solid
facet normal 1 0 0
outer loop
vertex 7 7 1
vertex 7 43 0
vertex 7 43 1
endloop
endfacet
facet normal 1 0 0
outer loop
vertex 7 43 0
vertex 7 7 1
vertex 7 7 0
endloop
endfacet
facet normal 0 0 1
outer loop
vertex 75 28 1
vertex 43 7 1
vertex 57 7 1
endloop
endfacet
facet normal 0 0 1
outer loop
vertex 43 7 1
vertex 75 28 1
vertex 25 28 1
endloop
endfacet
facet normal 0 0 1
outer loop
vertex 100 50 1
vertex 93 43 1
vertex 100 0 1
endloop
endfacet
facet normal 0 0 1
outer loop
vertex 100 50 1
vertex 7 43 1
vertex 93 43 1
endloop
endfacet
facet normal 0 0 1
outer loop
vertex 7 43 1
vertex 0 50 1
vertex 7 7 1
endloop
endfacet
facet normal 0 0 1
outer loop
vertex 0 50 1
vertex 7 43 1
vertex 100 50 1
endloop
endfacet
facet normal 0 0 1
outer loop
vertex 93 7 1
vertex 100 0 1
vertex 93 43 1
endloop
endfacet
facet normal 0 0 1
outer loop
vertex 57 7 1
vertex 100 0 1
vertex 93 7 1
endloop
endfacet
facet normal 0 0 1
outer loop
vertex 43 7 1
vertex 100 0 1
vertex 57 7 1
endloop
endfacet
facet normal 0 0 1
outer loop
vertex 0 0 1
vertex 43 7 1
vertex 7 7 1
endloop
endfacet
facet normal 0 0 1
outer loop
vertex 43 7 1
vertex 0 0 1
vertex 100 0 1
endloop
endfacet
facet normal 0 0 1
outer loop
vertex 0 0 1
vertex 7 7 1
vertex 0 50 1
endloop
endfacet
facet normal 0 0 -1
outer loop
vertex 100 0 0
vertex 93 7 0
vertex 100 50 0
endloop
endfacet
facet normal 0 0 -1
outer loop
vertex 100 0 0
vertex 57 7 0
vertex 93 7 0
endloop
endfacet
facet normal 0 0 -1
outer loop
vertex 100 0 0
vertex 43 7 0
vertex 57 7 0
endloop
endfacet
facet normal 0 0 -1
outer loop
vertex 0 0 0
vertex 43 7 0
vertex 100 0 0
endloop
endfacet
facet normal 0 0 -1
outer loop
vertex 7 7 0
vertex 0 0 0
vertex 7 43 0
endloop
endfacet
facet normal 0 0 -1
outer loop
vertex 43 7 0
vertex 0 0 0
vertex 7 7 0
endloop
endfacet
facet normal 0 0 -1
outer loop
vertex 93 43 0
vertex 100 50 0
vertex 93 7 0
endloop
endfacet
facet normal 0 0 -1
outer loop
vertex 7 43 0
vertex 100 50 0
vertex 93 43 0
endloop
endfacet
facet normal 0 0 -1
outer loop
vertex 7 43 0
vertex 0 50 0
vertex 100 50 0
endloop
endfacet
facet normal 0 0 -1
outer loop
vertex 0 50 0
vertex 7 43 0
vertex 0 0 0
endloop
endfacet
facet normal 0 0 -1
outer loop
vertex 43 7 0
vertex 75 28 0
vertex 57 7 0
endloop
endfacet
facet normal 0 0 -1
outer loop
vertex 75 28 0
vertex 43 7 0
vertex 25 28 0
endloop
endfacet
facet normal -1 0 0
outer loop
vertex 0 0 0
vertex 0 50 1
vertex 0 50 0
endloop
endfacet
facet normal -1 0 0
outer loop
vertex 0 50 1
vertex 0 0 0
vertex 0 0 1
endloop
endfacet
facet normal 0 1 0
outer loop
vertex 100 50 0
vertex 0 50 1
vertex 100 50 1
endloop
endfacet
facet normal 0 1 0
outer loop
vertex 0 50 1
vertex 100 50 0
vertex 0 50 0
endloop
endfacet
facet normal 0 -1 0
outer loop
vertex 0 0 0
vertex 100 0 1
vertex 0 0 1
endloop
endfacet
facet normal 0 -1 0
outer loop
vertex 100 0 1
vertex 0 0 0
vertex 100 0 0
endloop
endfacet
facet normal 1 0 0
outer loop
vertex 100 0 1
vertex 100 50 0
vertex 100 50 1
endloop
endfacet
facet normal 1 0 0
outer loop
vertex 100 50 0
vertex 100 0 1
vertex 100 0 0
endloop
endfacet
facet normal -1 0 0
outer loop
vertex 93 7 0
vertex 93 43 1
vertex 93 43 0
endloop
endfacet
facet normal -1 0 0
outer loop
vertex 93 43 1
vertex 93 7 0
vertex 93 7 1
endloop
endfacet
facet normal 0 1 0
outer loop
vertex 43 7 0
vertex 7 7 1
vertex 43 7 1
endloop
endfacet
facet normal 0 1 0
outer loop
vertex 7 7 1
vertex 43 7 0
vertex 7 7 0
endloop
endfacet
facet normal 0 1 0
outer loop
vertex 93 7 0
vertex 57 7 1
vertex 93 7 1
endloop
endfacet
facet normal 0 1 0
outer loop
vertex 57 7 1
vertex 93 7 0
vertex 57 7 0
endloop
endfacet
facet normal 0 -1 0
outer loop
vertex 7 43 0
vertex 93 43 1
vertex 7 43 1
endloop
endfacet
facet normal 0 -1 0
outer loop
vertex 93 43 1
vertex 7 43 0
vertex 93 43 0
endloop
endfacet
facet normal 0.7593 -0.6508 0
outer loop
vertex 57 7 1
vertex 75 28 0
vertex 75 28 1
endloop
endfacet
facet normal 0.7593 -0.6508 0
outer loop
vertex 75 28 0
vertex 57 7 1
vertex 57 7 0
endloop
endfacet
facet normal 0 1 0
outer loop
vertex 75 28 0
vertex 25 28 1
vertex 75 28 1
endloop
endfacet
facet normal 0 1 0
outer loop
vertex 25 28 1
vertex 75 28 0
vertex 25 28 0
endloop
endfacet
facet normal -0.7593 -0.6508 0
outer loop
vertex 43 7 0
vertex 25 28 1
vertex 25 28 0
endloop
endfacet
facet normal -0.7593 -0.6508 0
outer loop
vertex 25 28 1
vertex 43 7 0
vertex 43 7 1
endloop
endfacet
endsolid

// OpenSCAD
th = 7;
d = 1;

w = 100;
h = 50;

cube([th, h, d]);

//right
translate([w - th, 0, 0])
  cube([th, h, d]);

//top
cube([w, th, d]);
//bottom
translate([0, h - th, 0])
  cube([w, th, d]);

color("#ff0")
linear_extrude(d)
polygon(points=[
    [w / 2 - th, th],
    [w / 2 + th, th],
    [w / 4 * 3, th * 4],
    [w / 4, th * 4]
]);

/*
color("#f0f")
translate([w / 4, th * 2, 0])
cube([w / 2, th * 2, d]);
*/
